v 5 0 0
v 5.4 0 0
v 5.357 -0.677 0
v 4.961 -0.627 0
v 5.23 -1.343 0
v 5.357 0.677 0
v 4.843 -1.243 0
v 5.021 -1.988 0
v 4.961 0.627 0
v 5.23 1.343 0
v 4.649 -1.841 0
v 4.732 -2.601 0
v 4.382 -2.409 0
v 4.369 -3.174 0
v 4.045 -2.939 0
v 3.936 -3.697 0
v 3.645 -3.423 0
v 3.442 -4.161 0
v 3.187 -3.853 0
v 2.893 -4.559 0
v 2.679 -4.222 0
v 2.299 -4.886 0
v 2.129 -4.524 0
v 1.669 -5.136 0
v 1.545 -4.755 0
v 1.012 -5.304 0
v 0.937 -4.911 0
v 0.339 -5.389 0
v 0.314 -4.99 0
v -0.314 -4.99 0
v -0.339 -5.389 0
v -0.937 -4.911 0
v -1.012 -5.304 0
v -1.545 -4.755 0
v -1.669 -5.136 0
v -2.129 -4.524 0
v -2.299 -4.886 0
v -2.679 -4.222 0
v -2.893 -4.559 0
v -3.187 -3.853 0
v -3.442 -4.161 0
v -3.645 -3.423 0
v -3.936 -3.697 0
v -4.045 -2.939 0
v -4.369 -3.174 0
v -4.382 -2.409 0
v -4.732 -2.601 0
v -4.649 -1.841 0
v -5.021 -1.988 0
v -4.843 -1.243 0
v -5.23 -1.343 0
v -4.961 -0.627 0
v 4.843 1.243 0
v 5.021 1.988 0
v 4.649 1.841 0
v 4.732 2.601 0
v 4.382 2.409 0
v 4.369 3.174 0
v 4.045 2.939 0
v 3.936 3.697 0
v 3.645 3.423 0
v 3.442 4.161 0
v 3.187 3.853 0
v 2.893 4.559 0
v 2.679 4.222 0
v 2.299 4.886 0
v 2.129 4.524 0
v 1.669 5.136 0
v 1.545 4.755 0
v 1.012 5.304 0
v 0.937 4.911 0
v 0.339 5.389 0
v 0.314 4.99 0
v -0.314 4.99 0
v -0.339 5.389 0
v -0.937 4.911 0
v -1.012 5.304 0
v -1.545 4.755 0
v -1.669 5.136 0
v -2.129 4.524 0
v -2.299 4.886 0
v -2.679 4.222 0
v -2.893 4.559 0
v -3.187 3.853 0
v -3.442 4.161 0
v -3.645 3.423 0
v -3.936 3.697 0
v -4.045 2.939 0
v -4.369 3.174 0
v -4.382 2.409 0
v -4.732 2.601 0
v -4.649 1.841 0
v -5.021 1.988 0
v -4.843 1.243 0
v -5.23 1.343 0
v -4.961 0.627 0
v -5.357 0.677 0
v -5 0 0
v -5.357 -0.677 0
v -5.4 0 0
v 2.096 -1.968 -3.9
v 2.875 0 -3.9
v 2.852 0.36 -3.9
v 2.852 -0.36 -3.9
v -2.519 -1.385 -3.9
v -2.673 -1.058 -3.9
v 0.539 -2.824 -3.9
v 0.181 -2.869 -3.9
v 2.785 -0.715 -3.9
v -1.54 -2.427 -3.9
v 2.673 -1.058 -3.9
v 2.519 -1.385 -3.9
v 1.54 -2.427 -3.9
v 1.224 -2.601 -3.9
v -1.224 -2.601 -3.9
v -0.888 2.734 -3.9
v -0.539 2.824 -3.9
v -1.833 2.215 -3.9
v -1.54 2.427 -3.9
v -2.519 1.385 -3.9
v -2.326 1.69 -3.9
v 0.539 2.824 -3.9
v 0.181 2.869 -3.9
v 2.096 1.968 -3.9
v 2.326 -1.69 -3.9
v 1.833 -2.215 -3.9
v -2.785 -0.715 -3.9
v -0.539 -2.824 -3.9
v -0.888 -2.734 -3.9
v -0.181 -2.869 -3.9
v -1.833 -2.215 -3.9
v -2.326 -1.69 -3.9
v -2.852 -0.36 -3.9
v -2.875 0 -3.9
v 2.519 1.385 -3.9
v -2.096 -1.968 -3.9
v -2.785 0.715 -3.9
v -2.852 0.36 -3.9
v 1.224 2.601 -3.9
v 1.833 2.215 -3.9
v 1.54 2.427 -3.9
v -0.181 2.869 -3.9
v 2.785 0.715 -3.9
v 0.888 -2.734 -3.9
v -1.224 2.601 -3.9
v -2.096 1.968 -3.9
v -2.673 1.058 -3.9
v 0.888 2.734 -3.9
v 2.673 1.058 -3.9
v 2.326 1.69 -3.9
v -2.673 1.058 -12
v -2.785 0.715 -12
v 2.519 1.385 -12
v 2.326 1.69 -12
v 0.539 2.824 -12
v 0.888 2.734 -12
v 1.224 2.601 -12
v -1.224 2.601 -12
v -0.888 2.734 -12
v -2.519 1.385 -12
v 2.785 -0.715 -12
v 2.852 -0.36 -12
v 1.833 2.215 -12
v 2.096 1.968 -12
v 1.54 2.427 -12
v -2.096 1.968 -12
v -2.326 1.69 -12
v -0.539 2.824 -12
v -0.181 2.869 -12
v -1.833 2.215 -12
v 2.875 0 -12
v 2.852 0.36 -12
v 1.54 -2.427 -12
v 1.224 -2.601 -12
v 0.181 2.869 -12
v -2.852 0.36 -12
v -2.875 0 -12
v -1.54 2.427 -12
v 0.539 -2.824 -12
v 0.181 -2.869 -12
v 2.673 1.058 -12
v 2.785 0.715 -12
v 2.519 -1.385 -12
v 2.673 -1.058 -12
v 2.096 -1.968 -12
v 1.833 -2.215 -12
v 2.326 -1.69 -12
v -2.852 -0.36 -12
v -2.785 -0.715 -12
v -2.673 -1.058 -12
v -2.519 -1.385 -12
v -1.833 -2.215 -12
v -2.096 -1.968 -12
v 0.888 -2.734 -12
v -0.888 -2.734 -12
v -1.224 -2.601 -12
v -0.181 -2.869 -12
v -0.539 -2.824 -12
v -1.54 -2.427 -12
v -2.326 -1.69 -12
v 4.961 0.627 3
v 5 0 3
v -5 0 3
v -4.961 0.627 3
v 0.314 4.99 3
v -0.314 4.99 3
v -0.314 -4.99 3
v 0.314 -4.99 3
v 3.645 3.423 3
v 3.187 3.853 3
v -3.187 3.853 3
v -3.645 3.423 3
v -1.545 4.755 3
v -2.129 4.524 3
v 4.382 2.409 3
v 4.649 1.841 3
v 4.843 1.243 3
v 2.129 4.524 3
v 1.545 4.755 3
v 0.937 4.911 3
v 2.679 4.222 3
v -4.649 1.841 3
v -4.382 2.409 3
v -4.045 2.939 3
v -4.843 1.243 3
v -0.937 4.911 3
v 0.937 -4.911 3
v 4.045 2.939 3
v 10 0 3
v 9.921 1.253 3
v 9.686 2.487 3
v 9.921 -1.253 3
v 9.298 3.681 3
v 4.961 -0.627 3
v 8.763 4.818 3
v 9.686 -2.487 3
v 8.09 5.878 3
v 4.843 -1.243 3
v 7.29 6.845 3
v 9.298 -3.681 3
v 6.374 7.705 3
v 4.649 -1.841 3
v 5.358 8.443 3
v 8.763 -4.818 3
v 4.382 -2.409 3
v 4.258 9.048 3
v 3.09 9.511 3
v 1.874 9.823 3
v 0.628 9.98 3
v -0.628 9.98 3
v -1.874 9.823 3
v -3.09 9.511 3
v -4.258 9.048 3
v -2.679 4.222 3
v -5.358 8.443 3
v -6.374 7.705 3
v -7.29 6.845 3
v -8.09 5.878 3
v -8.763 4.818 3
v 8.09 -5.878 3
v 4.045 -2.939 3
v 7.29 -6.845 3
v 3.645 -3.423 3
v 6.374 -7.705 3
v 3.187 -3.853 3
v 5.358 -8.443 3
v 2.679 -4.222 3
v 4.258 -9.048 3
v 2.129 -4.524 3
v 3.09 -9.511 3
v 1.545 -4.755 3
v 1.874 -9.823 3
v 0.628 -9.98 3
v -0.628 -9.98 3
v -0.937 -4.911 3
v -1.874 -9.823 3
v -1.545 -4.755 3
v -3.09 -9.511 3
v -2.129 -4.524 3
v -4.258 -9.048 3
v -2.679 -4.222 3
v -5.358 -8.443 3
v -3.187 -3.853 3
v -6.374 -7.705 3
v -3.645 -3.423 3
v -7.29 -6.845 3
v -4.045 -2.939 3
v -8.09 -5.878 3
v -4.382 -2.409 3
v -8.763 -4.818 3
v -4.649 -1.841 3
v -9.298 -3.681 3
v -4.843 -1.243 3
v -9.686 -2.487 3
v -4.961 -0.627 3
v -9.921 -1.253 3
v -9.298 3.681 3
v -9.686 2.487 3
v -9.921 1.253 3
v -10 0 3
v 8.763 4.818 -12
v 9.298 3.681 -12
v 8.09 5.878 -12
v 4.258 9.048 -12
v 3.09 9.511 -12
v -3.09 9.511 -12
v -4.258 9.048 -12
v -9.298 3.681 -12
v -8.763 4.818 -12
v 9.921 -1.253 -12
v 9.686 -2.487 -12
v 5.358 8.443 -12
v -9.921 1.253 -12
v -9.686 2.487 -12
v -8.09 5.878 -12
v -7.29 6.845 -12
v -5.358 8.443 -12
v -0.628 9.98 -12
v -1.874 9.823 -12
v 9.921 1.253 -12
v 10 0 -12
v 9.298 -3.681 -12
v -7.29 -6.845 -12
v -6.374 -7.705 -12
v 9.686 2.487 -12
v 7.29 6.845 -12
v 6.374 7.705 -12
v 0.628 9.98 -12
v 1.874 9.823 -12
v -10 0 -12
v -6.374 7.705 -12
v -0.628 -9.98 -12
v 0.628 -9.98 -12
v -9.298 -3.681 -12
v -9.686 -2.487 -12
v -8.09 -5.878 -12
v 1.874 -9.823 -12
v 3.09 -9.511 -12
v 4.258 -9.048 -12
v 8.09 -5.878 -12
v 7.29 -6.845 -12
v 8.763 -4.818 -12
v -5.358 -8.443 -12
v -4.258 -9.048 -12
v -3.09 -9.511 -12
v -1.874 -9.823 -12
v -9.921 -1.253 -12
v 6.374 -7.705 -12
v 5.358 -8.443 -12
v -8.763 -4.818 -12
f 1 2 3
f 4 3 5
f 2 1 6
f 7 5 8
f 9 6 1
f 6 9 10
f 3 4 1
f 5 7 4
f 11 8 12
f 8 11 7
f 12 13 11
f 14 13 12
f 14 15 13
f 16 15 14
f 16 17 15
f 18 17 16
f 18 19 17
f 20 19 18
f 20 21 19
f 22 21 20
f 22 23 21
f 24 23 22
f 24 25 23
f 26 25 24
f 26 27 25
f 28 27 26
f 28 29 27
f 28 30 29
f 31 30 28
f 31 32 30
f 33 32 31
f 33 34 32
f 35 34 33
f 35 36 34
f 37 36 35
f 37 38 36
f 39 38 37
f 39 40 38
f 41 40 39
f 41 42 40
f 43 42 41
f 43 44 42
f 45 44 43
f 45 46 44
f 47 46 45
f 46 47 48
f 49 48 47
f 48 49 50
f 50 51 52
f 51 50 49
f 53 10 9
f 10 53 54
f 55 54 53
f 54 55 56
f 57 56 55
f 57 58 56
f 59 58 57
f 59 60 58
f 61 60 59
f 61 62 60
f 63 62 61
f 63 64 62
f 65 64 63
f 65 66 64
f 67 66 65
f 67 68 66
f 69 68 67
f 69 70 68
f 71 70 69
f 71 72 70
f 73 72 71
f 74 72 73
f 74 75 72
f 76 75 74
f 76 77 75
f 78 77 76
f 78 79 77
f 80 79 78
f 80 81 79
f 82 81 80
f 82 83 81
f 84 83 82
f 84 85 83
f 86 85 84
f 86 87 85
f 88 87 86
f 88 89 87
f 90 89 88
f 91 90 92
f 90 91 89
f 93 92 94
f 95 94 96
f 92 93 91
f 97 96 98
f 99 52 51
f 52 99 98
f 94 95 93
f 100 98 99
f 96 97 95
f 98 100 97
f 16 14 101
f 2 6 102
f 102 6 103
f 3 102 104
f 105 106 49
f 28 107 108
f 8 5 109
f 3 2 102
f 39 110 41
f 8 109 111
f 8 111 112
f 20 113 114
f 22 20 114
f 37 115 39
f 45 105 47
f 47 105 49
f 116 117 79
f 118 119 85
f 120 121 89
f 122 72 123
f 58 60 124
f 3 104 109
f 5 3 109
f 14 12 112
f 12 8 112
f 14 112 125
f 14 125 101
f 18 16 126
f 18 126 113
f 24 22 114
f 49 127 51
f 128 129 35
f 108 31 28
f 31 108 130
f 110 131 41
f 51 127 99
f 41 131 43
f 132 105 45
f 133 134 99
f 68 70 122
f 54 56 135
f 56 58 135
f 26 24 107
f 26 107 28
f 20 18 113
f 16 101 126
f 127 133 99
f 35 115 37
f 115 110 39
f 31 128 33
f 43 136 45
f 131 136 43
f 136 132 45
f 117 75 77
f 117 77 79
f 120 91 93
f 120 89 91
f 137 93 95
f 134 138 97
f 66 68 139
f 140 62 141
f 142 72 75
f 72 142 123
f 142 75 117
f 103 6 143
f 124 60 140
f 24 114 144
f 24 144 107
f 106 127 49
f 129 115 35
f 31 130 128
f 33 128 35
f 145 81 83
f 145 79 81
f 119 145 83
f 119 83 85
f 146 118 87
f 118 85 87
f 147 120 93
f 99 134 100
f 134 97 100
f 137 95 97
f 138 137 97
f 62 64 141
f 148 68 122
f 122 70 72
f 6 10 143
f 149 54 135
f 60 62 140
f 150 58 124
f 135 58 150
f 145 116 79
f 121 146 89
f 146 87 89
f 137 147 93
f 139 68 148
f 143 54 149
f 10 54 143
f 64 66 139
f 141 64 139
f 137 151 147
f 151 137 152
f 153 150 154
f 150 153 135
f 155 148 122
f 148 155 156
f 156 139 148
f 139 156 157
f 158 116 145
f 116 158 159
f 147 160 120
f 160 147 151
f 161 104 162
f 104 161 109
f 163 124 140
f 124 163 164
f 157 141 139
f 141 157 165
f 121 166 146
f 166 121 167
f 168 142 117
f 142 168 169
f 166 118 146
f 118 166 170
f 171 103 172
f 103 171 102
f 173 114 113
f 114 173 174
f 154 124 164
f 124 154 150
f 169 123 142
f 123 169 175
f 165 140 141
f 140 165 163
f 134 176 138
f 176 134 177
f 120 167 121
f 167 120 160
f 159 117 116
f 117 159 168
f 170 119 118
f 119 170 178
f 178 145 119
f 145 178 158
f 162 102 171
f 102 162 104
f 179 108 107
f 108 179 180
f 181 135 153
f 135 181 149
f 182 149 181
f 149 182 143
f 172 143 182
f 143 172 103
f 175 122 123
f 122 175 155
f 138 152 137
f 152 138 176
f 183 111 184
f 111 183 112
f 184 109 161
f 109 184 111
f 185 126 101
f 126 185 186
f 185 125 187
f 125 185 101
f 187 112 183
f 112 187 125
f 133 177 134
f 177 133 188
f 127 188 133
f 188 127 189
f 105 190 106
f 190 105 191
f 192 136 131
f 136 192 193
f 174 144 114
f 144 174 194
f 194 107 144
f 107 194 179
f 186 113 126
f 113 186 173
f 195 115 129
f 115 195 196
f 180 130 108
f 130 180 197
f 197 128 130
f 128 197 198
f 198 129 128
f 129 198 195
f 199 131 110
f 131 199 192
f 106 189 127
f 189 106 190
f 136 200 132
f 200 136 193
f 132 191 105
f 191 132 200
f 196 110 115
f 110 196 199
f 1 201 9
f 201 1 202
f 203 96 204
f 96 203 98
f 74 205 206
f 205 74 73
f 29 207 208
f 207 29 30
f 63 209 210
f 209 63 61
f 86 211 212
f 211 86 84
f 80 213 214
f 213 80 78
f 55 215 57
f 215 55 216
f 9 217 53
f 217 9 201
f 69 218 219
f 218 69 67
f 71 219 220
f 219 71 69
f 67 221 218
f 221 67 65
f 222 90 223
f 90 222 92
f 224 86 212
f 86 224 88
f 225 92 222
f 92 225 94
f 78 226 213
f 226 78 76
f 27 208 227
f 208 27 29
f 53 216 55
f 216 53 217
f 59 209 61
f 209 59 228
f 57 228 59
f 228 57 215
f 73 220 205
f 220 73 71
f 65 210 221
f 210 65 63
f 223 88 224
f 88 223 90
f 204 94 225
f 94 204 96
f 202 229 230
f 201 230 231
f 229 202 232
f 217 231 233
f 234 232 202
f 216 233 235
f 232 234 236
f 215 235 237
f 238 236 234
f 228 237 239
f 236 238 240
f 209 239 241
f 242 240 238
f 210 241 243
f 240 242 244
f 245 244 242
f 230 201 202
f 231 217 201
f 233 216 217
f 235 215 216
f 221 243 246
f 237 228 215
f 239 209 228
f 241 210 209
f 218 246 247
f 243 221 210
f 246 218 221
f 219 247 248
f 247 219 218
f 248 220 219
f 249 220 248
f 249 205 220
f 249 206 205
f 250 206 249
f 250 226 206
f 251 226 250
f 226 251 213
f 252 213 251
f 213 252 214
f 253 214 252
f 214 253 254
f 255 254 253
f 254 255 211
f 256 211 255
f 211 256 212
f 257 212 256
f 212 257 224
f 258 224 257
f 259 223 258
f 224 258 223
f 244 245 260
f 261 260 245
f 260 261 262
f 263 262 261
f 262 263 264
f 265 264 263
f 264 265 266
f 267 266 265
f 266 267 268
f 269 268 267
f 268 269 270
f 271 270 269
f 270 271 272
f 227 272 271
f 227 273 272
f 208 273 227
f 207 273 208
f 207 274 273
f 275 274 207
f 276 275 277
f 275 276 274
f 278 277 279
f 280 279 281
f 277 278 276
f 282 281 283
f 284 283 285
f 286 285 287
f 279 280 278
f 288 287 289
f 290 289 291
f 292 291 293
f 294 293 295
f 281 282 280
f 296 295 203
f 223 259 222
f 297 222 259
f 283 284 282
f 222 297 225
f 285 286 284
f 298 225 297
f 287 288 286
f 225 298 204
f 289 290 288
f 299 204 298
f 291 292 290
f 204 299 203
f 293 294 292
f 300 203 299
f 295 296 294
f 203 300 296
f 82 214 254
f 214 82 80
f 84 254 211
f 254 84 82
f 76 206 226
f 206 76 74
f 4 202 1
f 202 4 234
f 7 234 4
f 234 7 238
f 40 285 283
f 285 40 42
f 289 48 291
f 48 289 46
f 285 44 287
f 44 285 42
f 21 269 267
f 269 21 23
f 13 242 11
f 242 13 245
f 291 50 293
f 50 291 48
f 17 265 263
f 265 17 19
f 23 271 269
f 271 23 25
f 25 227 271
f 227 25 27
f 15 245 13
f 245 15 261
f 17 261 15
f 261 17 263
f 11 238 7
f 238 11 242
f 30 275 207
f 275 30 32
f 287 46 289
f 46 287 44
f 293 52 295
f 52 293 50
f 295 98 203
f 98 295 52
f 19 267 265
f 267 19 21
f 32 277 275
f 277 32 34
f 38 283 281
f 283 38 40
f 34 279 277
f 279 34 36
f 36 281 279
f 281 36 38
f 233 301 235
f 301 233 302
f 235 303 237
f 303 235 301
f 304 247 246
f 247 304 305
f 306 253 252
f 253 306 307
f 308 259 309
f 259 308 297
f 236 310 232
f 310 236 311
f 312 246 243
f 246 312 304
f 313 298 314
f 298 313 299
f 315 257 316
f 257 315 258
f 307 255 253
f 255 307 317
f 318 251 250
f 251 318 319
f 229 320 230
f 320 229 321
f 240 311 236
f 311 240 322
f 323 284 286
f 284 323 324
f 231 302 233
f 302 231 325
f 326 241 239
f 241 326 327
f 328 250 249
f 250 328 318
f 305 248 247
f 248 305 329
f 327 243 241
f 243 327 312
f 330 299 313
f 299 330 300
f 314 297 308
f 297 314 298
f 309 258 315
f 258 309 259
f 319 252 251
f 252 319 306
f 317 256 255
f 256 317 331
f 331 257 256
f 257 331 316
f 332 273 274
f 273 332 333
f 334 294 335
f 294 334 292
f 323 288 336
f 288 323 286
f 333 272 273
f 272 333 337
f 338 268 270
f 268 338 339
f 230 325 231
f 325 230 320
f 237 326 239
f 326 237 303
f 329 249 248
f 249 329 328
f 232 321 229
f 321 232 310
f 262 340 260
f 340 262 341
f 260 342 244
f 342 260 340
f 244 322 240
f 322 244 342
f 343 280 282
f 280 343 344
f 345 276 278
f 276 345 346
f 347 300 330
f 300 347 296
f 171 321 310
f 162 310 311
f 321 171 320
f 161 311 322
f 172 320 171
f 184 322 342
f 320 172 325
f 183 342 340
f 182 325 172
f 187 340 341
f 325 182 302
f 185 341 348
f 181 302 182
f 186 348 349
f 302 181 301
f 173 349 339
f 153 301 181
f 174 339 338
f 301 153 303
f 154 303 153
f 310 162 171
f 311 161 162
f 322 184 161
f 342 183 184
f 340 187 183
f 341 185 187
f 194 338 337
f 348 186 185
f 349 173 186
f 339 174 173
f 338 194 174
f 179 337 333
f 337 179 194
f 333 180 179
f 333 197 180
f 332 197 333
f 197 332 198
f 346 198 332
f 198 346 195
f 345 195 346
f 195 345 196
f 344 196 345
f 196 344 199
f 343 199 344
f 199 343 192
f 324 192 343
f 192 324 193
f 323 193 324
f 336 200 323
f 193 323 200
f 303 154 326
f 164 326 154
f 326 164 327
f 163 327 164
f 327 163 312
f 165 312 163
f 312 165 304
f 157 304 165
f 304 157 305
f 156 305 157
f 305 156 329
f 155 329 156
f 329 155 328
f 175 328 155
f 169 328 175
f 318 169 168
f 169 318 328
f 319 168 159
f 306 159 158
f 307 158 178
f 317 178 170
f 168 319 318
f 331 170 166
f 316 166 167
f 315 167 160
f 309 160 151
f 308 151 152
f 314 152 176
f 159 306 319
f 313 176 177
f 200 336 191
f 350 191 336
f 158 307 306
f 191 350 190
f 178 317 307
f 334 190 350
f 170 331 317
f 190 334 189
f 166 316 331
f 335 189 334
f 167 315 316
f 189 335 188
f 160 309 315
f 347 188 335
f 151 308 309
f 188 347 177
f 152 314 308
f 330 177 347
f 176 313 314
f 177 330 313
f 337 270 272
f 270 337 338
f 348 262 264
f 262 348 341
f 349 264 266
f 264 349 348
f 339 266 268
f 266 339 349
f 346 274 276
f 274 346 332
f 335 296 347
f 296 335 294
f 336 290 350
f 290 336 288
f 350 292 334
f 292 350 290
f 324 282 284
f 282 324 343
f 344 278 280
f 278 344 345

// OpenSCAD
$fn = 50;


difference() {
	union() {
		translate(v = [0, 0, -12.0000000000]) {
			cylinder(h = 15, r = 10.0000000000);
		}
	}
	union() {
		translate(v = [0, 0, 0]) {
			rotate(a = [0, 0, 0]) {
				difference() {
					union() {
						translate(v = [0, 0, -15.0000000000]) {
							cylinder(h = 15, r = 2.6000000000);
						}
						translate(v = [0, 0, -3.9000000000]) {
							cylinder(h = 3.9000000000, r1 = 2.8750000000, r2 = 5.4000000000);
						}
						translate(v = [0, 0, -15.0000000000]) {
							cylinder(h = 15, r = 2.8750000000);
						}
						translate(v = [0, 0, -15.0000000000]) {
							cylinder(h = 15, r = 2.6000000000);
						}
					}
					union();
				}
			}
		}
		#cylinder(h = 3, r = 5.0000000000);
	}
}
